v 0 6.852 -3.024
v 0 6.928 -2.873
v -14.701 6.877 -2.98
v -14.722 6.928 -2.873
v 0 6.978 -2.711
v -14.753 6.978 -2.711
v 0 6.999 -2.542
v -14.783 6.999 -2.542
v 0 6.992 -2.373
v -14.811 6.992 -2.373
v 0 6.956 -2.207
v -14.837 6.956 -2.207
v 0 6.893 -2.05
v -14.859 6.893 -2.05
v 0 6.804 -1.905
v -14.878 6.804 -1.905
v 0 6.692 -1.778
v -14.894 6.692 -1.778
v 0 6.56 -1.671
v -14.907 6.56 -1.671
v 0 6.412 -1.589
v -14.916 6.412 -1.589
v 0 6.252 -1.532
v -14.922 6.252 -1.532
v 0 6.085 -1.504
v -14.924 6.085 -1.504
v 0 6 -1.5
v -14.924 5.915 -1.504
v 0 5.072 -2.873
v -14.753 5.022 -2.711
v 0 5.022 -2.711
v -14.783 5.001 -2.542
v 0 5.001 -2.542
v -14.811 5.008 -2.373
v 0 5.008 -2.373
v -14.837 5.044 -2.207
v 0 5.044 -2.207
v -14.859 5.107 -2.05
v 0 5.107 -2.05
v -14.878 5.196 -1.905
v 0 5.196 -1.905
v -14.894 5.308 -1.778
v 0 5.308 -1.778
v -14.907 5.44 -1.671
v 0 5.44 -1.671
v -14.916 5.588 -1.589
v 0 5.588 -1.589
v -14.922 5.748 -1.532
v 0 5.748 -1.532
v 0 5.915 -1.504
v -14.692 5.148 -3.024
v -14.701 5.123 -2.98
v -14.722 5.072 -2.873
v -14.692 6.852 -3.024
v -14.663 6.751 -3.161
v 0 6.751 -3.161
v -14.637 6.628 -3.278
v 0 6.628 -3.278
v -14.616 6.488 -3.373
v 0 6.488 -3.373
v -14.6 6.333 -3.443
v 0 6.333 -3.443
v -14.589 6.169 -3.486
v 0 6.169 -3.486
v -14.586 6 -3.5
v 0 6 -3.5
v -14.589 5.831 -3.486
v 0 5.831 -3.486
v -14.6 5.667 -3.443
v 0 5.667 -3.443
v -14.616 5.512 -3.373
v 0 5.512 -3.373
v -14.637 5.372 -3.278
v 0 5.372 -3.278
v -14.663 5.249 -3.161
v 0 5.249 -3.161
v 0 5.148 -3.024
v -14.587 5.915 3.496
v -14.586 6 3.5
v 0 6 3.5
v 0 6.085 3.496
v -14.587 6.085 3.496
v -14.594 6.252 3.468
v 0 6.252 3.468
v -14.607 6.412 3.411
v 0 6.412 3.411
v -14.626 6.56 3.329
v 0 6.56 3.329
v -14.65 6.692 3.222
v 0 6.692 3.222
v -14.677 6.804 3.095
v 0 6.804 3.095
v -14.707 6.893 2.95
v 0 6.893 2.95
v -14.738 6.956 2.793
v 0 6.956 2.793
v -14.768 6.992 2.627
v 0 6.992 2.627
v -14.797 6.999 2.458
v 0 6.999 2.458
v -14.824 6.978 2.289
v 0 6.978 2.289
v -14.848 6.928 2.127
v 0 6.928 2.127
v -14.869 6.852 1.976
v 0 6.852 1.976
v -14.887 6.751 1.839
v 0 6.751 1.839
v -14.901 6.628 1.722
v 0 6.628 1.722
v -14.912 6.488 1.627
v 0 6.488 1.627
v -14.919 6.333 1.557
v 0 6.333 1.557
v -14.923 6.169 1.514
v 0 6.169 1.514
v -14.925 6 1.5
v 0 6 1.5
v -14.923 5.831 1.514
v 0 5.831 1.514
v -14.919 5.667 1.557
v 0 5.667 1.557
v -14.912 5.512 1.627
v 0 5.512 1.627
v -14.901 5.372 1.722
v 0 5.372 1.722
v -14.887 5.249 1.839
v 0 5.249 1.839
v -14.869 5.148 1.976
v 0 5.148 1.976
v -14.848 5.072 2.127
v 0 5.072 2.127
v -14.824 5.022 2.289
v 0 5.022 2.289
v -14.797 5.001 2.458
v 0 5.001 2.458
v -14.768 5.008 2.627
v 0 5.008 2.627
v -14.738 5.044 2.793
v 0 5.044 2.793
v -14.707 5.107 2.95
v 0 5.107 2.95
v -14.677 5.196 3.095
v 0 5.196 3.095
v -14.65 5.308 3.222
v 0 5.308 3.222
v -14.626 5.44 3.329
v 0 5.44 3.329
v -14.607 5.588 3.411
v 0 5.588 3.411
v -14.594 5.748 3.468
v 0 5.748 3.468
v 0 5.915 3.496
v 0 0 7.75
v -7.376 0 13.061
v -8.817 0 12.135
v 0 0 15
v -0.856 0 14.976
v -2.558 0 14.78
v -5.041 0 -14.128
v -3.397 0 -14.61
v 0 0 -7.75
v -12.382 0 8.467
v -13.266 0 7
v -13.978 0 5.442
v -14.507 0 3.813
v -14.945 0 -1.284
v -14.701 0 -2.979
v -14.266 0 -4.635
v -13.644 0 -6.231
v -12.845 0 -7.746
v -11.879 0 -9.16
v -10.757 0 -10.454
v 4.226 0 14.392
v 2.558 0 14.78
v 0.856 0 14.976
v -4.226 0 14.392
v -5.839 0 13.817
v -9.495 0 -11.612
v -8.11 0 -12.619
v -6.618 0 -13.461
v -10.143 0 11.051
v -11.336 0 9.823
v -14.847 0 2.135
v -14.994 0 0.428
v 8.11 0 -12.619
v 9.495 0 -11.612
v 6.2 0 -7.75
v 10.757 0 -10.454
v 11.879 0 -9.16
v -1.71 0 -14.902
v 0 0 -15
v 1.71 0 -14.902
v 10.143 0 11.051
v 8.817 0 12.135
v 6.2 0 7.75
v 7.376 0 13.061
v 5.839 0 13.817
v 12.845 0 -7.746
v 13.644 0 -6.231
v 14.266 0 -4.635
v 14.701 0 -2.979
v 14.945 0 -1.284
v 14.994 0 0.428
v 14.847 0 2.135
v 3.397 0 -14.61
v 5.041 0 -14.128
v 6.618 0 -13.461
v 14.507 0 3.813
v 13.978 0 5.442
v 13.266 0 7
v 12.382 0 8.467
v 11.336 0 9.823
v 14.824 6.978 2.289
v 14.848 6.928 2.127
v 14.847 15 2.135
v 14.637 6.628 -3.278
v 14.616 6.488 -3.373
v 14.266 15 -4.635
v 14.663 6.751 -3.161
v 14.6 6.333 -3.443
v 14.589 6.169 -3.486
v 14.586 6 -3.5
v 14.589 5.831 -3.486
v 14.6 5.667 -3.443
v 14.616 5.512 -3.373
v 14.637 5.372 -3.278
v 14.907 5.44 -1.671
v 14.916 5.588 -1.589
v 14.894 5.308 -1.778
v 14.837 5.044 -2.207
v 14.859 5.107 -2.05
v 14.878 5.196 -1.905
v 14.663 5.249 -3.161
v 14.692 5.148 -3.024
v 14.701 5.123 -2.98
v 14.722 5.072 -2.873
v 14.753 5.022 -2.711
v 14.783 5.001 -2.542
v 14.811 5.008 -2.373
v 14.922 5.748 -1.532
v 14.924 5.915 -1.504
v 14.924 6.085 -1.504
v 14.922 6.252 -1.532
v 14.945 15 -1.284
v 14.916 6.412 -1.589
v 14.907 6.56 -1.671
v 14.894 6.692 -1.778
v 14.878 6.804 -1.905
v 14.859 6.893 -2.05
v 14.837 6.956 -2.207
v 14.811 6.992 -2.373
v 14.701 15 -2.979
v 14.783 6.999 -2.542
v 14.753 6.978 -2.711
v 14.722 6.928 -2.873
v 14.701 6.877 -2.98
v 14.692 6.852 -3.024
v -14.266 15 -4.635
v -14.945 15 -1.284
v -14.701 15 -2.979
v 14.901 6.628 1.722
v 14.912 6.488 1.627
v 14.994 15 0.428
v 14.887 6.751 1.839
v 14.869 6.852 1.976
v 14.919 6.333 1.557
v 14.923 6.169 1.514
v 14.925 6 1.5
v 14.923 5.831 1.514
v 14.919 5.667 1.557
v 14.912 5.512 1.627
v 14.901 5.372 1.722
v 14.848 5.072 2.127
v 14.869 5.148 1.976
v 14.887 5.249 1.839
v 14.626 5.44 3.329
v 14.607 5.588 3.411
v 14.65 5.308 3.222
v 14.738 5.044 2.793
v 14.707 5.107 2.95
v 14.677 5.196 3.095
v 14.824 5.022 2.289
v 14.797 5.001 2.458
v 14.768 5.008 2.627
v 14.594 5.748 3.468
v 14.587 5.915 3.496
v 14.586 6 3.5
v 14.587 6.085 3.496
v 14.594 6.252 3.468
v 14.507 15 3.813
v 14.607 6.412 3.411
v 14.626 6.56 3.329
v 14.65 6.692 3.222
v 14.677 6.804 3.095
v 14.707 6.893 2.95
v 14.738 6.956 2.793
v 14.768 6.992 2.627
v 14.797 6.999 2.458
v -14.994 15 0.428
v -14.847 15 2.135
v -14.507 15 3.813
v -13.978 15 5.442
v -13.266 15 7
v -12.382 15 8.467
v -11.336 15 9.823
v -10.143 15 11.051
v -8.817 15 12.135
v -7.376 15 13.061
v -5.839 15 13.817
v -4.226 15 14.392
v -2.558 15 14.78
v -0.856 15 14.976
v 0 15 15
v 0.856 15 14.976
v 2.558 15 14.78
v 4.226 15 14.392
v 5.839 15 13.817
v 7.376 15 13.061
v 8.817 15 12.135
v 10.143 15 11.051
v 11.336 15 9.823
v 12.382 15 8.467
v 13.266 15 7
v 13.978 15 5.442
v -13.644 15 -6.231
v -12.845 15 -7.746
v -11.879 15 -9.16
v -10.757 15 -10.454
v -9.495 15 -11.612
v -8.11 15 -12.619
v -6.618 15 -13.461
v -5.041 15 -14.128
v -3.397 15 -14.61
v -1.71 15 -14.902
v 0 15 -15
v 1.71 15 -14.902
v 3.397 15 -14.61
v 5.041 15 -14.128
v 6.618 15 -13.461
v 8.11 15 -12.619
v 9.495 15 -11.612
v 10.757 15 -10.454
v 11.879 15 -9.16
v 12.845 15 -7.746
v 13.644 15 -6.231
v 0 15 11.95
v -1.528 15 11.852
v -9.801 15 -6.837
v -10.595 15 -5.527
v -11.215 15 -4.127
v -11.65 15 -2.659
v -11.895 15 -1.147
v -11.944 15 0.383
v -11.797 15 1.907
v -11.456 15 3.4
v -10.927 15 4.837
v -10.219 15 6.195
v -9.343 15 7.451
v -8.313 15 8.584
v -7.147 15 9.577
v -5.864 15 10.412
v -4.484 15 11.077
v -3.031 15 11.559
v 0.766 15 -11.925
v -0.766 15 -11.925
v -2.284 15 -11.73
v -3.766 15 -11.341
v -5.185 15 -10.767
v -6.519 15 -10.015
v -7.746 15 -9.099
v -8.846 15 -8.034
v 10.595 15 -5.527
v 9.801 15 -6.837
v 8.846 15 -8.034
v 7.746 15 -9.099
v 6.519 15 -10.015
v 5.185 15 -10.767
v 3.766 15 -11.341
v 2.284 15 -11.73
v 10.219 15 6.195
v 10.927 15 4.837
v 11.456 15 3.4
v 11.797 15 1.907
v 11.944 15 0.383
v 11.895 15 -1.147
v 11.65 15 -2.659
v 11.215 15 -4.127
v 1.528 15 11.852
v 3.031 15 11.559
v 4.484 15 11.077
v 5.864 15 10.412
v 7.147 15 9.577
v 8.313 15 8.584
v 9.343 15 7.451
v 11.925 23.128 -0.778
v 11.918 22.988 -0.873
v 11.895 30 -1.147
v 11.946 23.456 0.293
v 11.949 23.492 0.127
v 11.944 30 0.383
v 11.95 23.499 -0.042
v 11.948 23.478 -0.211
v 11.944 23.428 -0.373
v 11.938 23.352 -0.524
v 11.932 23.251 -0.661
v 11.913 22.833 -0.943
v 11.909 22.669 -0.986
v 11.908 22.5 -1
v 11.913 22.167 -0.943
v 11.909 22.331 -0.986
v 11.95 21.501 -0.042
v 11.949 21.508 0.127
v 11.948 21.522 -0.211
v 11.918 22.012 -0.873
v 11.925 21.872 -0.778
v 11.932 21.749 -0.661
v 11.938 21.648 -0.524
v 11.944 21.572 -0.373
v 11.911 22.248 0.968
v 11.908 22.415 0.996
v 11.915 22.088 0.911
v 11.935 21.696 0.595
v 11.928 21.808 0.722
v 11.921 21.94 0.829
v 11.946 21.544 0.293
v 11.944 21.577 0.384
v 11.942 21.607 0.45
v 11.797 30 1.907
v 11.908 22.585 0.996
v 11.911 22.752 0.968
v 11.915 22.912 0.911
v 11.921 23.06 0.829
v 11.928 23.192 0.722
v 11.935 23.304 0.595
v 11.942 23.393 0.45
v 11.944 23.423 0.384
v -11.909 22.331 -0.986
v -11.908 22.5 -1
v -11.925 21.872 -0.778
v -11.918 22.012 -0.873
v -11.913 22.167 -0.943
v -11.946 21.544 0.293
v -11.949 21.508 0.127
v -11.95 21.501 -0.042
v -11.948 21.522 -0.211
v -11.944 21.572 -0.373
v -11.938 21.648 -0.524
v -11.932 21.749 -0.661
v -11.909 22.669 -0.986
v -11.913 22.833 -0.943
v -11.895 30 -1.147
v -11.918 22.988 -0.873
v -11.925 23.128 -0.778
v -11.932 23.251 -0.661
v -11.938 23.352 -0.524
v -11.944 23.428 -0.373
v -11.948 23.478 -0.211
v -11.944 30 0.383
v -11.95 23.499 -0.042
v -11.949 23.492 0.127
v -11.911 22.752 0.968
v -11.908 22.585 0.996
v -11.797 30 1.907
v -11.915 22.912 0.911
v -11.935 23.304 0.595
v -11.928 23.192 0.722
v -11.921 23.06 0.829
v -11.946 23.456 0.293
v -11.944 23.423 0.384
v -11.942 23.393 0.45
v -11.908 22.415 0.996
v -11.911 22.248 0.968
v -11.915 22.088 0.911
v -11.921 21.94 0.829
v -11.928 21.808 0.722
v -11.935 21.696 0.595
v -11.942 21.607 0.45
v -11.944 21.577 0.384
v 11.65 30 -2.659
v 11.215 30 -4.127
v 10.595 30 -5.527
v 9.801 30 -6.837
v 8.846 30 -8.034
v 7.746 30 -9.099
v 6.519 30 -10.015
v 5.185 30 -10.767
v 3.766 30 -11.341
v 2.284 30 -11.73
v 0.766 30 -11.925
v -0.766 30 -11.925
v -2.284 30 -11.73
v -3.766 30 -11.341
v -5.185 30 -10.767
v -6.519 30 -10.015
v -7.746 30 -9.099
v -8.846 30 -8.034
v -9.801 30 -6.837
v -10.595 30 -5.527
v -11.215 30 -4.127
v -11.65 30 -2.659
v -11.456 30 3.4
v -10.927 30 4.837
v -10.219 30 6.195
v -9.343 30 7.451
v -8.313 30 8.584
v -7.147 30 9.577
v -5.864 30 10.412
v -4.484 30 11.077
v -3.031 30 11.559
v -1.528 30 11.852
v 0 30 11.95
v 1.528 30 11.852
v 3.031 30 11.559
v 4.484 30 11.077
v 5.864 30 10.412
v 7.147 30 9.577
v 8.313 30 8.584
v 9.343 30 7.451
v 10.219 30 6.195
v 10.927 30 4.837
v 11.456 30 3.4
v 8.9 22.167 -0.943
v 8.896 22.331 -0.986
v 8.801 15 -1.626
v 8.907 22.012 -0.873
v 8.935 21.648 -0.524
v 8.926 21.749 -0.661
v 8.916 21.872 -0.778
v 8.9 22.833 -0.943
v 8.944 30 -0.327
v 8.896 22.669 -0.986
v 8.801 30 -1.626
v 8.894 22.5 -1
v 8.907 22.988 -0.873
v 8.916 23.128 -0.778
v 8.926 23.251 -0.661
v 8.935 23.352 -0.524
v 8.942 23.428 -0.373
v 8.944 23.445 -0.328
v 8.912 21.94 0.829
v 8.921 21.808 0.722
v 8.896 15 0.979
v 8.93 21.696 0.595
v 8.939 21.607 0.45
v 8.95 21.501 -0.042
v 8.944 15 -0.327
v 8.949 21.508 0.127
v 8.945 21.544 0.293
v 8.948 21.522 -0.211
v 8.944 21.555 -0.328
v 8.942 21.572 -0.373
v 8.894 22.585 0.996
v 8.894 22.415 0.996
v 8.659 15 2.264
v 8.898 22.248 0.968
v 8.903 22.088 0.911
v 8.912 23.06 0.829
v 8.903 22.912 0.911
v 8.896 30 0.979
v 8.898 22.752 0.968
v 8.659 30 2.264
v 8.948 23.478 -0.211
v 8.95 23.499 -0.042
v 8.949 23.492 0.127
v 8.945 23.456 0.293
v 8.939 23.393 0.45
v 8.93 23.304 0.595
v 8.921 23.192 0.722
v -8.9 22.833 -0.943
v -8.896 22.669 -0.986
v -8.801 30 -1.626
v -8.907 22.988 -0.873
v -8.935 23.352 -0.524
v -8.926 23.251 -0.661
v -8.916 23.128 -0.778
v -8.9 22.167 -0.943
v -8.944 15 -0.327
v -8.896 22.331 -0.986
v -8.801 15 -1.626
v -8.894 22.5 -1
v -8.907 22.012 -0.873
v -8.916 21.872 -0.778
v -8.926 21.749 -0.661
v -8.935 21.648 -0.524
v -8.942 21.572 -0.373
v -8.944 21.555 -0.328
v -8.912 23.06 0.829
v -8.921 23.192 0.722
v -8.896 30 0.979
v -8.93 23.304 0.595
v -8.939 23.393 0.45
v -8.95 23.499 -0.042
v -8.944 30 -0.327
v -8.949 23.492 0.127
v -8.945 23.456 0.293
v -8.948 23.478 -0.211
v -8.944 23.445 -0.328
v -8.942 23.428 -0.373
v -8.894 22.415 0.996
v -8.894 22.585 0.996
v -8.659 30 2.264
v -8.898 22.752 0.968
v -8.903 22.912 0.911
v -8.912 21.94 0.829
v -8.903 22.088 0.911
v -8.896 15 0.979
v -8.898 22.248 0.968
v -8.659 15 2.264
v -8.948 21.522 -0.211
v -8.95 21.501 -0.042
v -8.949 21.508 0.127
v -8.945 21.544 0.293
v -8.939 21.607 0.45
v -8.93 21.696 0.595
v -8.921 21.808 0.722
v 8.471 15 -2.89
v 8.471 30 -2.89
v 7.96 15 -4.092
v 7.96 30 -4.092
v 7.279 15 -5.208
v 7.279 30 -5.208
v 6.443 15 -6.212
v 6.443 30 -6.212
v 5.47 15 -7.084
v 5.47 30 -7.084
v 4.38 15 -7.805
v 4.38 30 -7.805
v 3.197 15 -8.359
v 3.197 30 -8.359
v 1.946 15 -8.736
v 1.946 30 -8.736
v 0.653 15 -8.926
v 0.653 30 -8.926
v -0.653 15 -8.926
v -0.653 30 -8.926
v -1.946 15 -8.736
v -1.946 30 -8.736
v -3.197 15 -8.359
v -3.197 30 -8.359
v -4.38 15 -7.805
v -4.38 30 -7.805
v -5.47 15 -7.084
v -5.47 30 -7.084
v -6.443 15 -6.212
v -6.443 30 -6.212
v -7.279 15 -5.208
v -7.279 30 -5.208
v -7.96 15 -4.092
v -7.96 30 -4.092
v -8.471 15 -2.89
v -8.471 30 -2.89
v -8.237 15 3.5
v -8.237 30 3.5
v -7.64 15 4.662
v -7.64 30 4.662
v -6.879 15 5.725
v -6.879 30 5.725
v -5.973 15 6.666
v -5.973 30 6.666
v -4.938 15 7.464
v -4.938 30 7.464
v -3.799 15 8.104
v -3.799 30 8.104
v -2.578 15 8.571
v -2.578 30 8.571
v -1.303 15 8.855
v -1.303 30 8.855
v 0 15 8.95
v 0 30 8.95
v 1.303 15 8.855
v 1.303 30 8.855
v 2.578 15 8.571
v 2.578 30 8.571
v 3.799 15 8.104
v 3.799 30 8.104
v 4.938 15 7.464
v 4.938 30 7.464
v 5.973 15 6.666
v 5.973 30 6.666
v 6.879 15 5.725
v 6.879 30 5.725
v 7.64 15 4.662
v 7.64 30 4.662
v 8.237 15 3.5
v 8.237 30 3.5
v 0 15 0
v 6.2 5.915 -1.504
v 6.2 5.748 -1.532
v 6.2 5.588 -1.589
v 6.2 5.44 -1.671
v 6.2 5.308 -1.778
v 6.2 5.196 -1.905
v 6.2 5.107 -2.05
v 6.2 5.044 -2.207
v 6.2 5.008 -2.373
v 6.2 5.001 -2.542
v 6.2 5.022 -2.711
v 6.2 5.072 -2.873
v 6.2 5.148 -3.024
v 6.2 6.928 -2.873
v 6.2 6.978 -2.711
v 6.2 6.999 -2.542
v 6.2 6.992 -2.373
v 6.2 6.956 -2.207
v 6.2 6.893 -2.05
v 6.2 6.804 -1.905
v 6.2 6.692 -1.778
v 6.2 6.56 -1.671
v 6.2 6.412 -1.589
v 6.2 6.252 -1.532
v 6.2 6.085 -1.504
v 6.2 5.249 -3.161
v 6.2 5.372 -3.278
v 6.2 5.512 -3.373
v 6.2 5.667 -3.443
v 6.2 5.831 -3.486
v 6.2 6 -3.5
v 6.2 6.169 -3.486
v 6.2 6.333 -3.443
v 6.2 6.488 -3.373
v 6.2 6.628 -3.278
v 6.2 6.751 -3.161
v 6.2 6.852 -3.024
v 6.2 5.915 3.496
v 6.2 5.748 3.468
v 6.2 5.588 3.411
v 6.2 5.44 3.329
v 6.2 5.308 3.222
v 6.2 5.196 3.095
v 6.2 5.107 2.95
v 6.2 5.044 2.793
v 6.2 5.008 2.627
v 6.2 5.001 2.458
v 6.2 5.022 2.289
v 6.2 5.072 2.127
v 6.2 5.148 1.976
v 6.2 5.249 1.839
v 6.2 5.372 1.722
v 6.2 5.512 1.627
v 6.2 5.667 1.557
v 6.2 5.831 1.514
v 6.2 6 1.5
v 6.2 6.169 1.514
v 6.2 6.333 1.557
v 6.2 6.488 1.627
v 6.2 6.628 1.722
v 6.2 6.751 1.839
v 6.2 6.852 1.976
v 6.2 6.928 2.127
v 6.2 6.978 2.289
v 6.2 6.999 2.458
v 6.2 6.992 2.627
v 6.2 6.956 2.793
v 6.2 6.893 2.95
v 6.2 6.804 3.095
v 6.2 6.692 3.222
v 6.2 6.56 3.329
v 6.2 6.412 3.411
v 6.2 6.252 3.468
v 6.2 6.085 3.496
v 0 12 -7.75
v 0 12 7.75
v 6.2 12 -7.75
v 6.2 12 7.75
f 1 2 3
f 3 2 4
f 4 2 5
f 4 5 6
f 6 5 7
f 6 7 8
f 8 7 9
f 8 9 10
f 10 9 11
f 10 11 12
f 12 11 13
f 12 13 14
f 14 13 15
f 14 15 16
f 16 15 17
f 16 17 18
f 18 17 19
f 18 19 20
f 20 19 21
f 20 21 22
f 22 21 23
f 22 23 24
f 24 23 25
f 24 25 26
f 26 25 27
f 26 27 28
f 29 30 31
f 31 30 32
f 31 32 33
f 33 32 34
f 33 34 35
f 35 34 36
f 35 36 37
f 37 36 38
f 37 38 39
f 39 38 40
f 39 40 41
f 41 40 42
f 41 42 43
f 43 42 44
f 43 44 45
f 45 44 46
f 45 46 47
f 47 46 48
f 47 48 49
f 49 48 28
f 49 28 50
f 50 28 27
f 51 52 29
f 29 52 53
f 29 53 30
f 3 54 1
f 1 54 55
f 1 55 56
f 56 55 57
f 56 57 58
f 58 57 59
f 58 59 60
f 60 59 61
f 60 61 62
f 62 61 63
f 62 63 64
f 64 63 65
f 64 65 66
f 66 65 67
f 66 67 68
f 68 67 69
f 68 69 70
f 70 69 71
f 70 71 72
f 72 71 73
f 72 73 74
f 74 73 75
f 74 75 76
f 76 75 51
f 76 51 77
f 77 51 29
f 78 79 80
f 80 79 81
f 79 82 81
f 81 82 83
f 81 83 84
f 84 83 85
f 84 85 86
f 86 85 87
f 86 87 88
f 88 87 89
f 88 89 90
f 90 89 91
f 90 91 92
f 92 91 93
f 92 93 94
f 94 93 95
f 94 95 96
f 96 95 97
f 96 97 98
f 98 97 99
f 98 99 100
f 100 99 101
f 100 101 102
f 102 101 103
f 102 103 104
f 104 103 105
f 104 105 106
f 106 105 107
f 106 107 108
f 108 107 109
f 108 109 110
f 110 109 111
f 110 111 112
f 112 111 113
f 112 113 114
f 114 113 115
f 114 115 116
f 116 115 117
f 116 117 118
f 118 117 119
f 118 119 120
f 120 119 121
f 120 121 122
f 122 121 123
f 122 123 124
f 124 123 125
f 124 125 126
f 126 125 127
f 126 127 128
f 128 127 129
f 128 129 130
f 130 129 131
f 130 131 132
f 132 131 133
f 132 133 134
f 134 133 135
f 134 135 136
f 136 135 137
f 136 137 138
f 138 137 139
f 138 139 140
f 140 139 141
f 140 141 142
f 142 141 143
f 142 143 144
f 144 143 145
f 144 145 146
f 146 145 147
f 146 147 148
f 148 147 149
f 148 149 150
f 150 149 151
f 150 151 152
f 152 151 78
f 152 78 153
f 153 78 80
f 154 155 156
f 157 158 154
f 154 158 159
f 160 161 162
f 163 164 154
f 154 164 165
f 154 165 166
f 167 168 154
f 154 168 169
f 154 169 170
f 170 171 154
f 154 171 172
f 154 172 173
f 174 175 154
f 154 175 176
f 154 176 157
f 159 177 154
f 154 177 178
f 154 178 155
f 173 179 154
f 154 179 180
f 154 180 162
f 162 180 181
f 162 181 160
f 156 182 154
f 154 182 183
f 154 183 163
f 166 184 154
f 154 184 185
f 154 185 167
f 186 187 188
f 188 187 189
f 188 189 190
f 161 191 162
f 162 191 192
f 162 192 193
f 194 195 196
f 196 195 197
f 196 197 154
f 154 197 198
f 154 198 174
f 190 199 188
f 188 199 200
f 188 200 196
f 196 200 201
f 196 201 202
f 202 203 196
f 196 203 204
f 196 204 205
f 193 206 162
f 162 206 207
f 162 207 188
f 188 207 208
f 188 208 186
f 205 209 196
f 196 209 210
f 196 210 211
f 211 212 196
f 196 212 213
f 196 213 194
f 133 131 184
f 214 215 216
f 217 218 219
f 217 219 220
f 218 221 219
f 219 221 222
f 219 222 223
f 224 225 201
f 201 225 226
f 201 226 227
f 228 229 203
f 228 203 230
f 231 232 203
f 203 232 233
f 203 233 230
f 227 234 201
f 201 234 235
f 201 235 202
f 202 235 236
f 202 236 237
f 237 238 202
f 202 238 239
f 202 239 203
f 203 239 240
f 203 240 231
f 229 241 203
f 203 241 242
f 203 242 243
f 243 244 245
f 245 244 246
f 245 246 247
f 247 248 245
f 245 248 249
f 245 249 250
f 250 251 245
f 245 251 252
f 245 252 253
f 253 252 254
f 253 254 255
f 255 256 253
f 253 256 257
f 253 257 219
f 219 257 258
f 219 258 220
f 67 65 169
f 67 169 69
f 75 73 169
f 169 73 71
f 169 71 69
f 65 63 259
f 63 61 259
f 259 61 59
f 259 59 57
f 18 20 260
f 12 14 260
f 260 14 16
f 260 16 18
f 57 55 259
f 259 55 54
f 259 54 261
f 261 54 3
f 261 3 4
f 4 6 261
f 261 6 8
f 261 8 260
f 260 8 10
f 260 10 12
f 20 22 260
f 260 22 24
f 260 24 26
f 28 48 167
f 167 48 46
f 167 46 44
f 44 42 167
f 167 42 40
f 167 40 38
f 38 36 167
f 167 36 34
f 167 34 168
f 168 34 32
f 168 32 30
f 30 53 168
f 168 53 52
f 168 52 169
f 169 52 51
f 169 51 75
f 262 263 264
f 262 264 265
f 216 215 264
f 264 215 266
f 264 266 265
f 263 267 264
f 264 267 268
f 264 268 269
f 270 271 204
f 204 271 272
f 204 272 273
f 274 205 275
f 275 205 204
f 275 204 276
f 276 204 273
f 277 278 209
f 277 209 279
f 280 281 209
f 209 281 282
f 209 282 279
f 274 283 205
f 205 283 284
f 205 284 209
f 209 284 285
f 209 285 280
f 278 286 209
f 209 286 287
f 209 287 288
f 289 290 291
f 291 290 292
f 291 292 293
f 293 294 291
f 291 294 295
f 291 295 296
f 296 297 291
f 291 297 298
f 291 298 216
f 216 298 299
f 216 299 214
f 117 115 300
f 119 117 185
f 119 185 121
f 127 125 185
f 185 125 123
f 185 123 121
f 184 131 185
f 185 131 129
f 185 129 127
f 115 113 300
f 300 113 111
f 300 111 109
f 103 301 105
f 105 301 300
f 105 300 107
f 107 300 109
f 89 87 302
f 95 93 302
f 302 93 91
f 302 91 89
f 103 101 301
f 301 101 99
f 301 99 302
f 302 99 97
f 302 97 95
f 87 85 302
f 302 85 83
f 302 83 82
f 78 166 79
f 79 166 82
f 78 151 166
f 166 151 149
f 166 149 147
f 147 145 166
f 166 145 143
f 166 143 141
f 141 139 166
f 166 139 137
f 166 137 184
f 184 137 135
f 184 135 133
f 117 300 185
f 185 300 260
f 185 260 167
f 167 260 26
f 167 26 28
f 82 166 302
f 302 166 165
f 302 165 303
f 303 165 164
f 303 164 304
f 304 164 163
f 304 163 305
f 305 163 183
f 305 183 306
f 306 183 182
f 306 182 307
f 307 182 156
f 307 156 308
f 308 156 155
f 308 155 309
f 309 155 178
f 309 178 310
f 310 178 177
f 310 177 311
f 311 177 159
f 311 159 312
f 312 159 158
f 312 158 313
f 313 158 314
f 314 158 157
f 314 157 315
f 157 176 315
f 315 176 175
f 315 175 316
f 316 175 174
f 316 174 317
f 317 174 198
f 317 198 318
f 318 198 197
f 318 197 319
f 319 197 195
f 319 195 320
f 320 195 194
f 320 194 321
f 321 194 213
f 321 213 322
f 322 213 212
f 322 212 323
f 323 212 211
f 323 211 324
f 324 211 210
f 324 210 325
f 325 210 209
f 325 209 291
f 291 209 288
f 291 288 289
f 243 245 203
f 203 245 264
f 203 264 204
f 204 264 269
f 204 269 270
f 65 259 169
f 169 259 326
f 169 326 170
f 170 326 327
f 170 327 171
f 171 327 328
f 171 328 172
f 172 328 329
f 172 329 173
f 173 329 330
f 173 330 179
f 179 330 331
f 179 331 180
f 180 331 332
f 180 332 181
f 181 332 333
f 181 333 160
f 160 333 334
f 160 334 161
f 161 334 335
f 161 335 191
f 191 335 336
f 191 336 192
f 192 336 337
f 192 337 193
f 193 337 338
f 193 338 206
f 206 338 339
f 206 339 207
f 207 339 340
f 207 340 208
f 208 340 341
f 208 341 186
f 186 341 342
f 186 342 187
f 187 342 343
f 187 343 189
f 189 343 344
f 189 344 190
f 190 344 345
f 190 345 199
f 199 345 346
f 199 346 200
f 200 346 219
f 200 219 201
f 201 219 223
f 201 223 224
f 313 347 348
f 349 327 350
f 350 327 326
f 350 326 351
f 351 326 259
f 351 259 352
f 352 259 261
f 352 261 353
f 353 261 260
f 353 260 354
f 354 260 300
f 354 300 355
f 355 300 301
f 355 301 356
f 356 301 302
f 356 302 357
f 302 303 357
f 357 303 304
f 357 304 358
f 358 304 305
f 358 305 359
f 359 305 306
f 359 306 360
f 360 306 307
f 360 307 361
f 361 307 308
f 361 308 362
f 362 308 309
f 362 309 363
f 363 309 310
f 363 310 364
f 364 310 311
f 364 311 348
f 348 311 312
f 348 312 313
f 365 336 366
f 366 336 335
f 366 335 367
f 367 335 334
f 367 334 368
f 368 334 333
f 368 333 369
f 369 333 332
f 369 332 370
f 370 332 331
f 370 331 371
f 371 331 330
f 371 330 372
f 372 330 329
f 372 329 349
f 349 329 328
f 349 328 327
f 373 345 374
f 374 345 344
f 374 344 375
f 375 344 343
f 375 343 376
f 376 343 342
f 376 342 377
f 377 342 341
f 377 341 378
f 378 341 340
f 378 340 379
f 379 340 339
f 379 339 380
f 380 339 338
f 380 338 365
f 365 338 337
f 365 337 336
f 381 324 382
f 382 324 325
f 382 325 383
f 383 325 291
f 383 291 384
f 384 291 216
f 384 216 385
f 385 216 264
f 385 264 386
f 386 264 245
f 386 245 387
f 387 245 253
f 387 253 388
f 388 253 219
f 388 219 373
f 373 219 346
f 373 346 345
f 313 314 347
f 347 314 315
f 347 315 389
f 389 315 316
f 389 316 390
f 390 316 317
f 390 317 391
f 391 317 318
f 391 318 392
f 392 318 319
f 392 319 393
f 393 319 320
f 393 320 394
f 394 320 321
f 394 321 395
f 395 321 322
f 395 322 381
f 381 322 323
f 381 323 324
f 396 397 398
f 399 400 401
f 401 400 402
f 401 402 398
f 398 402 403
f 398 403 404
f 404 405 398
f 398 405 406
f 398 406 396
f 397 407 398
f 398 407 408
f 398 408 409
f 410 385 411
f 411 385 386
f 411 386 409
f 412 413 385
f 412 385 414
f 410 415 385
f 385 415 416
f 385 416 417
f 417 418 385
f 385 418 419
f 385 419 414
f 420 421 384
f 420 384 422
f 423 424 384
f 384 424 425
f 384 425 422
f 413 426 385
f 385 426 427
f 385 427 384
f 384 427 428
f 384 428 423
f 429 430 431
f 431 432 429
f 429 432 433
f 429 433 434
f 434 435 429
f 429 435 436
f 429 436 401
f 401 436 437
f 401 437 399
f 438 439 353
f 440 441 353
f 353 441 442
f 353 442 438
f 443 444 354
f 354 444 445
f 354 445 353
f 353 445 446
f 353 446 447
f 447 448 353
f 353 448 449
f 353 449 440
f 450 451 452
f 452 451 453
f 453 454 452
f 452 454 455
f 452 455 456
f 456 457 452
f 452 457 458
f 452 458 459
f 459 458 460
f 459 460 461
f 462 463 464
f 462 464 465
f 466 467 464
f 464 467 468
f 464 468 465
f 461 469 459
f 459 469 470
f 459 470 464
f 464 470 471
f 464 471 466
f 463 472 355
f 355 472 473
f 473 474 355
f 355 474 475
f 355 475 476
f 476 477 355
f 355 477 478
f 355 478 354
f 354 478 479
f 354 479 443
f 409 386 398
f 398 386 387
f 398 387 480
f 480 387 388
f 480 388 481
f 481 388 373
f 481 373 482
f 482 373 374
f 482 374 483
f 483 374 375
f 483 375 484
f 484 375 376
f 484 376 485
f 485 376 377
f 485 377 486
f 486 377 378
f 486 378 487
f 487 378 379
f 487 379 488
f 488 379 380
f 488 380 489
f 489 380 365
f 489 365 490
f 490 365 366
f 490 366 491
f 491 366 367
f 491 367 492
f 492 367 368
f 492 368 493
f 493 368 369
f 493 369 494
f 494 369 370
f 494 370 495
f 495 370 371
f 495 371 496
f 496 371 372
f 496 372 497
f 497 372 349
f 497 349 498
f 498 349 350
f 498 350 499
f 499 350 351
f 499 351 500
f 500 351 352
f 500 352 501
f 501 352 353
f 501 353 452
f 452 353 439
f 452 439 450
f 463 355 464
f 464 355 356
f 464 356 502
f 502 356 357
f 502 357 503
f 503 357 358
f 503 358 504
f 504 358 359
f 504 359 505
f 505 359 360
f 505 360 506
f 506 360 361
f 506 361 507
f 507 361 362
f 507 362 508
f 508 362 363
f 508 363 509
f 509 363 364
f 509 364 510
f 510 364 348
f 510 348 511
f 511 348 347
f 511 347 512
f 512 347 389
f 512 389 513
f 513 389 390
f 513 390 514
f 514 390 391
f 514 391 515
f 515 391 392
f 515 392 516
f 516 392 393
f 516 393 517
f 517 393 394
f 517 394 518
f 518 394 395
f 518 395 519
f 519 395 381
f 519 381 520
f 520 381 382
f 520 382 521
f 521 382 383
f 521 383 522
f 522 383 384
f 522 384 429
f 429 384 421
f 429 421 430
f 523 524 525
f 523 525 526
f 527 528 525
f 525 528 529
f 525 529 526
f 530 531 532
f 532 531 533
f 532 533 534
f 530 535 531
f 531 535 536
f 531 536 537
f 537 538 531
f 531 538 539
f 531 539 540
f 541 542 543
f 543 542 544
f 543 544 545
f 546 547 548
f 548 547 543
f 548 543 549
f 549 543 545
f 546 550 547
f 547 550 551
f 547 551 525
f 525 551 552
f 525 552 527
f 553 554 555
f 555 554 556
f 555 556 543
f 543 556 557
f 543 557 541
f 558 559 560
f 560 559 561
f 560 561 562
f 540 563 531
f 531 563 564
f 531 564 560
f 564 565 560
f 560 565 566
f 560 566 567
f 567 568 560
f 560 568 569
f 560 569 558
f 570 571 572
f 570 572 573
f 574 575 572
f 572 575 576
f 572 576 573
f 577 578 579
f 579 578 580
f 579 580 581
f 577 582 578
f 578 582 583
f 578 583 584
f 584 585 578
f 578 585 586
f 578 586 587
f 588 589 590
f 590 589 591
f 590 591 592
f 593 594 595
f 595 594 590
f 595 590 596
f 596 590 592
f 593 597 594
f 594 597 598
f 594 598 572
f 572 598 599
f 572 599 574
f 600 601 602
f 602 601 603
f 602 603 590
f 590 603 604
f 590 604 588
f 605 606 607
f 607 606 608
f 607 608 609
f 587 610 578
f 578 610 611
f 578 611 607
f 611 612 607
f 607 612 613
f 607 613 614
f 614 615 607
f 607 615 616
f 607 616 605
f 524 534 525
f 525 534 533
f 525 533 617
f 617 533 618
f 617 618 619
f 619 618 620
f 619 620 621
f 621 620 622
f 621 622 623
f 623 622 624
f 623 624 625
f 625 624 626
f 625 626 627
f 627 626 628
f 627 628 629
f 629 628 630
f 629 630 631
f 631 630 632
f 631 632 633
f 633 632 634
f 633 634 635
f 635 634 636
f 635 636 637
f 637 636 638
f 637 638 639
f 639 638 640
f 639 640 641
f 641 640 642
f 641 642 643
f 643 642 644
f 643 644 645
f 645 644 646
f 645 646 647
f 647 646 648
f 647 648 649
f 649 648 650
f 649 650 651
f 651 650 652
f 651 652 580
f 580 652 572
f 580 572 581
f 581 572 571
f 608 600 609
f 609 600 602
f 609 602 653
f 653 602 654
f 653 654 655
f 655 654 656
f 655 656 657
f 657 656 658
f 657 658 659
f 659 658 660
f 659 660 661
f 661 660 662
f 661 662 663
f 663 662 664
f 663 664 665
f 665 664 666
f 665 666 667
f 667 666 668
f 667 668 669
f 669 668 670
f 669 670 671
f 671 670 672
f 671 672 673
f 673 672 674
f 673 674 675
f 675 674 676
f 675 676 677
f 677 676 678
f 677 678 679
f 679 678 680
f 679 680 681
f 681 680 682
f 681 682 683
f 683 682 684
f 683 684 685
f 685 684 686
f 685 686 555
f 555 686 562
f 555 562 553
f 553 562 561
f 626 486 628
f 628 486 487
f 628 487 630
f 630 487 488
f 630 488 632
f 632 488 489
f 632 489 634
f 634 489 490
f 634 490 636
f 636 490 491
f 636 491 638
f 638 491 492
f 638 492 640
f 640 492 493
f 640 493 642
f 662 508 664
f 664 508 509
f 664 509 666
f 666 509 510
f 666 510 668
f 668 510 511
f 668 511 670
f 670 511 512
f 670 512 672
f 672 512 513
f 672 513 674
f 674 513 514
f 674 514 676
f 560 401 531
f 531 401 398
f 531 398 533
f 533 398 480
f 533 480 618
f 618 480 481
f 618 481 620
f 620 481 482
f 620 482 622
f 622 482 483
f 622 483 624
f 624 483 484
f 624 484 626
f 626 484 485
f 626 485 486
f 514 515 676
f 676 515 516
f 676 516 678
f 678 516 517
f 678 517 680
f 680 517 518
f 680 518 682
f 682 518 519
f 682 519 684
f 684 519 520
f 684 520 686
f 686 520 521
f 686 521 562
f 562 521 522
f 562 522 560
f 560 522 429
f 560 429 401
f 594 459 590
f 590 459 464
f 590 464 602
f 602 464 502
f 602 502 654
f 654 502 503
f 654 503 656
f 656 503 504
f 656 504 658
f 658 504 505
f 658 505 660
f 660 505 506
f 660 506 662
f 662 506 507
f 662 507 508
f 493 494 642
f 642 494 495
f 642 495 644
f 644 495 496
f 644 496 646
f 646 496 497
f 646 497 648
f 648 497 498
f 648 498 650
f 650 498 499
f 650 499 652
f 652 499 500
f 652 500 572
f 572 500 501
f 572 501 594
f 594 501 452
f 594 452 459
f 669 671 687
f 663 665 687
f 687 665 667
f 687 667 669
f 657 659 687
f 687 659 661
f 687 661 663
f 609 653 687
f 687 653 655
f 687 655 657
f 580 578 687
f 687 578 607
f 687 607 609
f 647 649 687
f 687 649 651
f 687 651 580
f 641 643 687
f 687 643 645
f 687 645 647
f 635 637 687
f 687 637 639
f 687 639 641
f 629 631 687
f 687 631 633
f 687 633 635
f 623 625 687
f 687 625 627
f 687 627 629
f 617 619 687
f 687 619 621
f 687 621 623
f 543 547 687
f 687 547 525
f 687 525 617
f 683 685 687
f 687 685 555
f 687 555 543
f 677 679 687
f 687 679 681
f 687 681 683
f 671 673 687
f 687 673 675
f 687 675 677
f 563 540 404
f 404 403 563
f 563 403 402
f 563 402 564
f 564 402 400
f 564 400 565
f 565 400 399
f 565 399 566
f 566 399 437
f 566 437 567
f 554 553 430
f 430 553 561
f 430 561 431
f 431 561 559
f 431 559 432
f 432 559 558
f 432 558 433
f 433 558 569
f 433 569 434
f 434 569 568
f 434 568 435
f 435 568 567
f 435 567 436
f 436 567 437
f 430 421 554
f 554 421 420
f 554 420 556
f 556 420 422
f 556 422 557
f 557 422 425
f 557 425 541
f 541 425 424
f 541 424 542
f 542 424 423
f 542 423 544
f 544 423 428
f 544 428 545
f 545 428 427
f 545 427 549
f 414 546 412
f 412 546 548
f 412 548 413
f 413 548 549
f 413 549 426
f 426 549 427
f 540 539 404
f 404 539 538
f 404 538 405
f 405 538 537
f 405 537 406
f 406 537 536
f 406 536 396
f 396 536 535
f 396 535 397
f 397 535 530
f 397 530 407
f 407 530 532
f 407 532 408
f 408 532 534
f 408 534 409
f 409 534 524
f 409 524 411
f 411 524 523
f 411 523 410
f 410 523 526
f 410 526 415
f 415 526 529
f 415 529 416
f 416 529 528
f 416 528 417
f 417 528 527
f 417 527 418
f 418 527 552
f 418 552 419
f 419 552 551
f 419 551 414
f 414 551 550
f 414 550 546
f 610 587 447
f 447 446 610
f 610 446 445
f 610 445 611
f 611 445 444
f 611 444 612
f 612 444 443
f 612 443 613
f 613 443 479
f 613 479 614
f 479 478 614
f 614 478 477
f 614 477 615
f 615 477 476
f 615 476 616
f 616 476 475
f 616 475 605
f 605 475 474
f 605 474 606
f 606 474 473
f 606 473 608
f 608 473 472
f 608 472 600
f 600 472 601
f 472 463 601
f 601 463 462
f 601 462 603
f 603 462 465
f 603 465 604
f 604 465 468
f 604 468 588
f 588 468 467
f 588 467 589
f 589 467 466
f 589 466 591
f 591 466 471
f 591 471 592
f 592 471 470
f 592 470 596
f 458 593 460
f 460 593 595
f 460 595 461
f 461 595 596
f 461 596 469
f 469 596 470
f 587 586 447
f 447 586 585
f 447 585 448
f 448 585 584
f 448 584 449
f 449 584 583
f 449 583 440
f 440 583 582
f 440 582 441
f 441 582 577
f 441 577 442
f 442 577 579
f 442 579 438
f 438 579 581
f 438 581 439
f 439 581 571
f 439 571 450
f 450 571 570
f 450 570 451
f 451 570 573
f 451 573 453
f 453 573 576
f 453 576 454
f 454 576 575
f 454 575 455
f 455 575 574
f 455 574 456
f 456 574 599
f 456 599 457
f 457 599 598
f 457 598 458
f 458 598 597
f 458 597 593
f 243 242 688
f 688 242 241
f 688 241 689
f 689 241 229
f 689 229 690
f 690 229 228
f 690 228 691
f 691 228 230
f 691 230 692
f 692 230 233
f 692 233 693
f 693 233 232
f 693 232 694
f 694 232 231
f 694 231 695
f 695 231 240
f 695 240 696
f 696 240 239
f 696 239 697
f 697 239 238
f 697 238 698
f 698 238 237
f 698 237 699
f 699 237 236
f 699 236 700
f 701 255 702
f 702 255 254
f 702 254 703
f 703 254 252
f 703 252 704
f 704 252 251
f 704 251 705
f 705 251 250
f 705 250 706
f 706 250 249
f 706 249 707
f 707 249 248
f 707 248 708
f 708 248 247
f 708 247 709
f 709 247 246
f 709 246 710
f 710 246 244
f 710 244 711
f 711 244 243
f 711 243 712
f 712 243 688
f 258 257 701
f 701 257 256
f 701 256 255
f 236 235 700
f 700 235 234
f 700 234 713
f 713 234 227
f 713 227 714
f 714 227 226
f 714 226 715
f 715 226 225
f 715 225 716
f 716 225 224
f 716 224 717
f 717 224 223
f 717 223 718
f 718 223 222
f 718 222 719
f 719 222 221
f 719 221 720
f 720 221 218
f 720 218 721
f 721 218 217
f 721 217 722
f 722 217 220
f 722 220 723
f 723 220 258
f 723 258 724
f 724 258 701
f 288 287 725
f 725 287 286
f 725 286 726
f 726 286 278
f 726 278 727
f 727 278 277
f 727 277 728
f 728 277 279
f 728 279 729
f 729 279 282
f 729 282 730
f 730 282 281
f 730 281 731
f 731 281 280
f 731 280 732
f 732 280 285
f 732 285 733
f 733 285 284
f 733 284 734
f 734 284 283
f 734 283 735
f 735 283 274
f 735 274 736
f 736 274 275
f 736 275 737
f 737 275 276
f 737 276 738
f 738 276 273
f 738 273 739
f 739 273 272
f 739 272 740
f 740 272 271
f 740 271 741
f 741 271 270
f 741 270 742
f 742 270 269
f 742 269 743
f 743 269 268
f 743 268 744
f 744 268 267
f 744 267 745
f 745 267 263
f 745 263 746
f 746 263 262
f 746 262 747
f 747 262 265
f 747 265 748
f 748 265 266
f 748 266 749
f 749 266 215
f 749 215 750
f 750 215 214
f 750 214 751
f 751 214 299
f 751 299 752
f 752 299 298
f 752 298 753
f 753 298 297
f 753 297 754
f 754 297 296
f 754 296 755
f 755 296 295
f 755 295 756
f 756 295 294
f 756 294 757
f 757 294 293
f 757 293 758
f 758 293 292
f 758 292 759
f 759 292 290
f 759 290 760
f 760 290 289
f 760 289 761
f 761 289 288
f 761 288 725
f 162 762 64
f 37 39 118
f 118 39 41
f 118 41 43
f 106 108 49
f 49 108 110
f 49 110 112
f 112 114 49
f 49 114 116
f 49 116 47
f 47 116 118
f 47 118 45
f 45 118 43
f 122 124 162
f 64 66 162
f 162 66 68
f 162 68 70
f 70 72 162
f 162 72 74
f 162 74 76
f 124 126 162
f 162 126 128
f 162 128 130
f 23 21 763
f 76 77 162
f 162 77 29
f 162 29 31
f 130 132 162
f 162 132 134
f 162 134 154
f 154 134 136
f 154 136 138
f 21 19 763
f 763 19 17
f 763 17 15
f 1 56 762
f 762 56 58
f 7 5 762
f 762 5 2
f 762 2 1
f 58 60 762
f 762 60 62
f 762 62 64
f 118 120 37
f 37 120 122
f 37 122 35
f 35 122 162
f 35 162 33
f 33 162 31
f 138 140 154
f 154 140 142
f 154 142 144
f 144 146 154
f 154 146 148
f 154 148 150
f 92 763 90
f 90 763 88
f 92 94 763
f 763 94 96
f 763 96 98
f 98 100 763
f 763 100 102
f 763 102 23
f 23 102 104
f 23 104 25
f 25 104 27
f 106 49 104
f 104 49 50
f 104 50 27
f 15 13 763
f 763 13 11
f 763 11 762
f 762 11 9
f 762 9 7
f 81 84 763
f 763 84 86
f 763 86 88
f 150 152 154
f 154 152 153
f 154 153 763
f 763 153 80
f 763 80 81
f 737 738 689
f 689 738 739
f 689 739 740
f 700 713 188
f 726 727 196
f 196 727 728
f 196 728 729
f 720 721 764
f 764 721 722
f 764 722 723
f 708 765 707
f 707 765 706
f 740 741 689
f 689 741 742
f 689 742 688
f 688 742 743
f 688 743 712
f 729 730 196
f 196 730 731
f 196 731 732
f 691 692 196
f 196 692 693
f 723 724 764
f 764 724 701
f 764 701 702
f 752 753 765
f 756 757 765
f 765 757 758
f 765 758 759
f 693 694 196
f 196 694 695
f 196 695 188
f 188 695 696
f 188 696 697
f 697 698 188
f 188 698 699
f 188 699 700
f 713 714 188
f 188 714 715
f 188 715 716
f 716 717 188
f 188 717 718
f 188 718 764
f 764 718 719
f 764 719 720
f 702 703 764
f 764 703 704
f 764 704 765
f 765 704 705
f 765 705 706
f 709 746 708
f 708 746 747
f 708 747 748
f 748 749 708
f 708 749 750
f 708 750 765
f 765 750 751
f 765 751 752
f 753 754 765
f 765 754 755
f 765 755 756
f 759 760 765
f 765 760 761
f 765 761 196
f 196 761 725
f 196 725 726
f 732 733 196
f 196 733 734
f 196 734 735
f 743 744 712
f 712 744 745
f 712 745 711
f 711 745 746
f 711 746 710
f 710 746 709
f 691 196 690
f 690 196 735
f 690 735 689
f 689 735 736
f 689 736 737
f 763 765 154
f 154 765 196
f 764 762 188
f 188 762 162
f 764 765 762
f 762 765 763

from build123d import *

# Parameters (mm, degrees)
SKETCH1_R                = 15
BOSS_EXTRUDE1_DEPTH      = 15
SKETCH2_R                = 11.95
SKETCH2_R_2              = 8.95
BOSS_EXTRUDE2_DEPTH      = 15
BOSS_EXTRUDE2_DEPTH_BACK = 3
SKETCH3_R                = 1
CUT_EXTRUDE1_DEPTH       = 16
CUT_EXTRUDE1_DEPTH_BACK  = 16
SKETCH4_R                = 11
BOSS_EXTRUDE3_DEPTH      = 5
M3_CLEARANCE_HOLE1_D     = 3.4
SKETCH8_R                = 26.295997506
CUT_EXTRUDE2_DEPTH       = 66
SKETCH9_W                = 6.2
SKETCH9_H                = 15.5
CUT_EXTRUDE3_DEPTH       = 12


with BuildPart() as part:
    # Sketch1 → Boss-Extrude1 (new body)
    with BuildSketch(Plane(origin=(0, 0, 0), x_dir=(1, 0, 0), z_dir=(0, 1, 0))):
        Circle(SKETCH1_R)
    extrude(amount=BOSS_EXTRUDE1_DEPTH)

    # Sketch2 → Boss-Extrude2 (add, two sides)
    with BuildSketch(Plane(origin=(0, 15, 0), x_dir=(1, 0, 0), z_dir=(0, 1, 0))) as boss_extrude2_sk:
        Circle(SKETCH2_R)
        Circle(SKETCH2_R_2, mode=Mode.SUBTRACT)
    extrude(amount=BOSS_EXTRUDE2_DEPTH)
    extrude(boss_extrude2_sk.sketch, amount=-BOSS_EXTRUDE2_DEPTH_BACK)

    # Sketch3 → Cut-Extrude1 (cut, two sides)
    with BuildSketch(Plane(origin=(0, 0, 0), x_dir=(0, 0, -1), z_dir=(1, 0, 0))) as cut_extrude1_sk:
        with Locations((0, 22.5)):
            Circle(SKETCH3_R)
        with Locations((-2.5, 6)):
            Circle(SKETCH3_R)
        with Locations((2.5, 6)):
            Circle(SKETCH3_R)
    extrude(amount=CUT_EXTRUDE1_DEPTH, mode=Mode.SUBTRACT)
    extrude(cut_extrude1_sk.sketch, amount=-CUT_EXTRUDE1_DEPTH_BACK, mode=Mode.SUBTRACT)

    # Sketch4 → Boss-Extrude3 (add)
    with BuildSketch(Plane(origin=(0, 0, 0), x_dir=(0, 0, -1), z_dir=(1, 0, 0))):
        with BuildLine():
            Line((11, 0), (-11, 0))
            Line((-11, 0), (-11, -12))
            ThreePointArc((-11, -12), (-12.05572809, -16.472135955), (-15, -20))
            ThreePointArc((-15, -20), (0, -65), (15, -20))
            ThreePointArc((15, -20), (12.05572809, -16.472135955), (11, -12))
            Line((11, -12), (11, 0))
        make_face()
        with Locations((0, -40)):
            Circle(SKETCH4_R, mode=Mode.SUBTRACT)
    extrude(amount=BOSS_EXTRUDE3_DEPTH)

    # M3 Clearance Hole1 (through all)
    with Locations(Plane(origin=(5, 0, 0), x_dir=(0, 0, -1), z_dir=(1, 0, 0))):
        with Locations((10.606601718, -50.606601718), (-10.606601718, -50.606601718), (-10.606601718, -29.393398282), (10.606601718, -29.393398282)):
            Hole(M3_CLEARANCE_HOLE1_D / 2)

    # Sketch8 → Cut-Extrude2 (cut, through all)
    with BuildSketch(Plane.XZ):
        Circle(SKETCH8_R)
    extrude(amount=CUT_EXTRUDE2_DEPTH, mode=Mode.SUBTRACT)

    # Sketch9 → Cut-Extrude3 (cut)
    with BuildSketch(Plane.XZ):
        with Locations((3.1, 0)):
            Rectangle(SKETCH9_W, SKETCH9_H)
    extrude(amount=-CUT_EXTRUDE3_DEPTH, mode=Mode.SUBTRACT)


solid = part.part
